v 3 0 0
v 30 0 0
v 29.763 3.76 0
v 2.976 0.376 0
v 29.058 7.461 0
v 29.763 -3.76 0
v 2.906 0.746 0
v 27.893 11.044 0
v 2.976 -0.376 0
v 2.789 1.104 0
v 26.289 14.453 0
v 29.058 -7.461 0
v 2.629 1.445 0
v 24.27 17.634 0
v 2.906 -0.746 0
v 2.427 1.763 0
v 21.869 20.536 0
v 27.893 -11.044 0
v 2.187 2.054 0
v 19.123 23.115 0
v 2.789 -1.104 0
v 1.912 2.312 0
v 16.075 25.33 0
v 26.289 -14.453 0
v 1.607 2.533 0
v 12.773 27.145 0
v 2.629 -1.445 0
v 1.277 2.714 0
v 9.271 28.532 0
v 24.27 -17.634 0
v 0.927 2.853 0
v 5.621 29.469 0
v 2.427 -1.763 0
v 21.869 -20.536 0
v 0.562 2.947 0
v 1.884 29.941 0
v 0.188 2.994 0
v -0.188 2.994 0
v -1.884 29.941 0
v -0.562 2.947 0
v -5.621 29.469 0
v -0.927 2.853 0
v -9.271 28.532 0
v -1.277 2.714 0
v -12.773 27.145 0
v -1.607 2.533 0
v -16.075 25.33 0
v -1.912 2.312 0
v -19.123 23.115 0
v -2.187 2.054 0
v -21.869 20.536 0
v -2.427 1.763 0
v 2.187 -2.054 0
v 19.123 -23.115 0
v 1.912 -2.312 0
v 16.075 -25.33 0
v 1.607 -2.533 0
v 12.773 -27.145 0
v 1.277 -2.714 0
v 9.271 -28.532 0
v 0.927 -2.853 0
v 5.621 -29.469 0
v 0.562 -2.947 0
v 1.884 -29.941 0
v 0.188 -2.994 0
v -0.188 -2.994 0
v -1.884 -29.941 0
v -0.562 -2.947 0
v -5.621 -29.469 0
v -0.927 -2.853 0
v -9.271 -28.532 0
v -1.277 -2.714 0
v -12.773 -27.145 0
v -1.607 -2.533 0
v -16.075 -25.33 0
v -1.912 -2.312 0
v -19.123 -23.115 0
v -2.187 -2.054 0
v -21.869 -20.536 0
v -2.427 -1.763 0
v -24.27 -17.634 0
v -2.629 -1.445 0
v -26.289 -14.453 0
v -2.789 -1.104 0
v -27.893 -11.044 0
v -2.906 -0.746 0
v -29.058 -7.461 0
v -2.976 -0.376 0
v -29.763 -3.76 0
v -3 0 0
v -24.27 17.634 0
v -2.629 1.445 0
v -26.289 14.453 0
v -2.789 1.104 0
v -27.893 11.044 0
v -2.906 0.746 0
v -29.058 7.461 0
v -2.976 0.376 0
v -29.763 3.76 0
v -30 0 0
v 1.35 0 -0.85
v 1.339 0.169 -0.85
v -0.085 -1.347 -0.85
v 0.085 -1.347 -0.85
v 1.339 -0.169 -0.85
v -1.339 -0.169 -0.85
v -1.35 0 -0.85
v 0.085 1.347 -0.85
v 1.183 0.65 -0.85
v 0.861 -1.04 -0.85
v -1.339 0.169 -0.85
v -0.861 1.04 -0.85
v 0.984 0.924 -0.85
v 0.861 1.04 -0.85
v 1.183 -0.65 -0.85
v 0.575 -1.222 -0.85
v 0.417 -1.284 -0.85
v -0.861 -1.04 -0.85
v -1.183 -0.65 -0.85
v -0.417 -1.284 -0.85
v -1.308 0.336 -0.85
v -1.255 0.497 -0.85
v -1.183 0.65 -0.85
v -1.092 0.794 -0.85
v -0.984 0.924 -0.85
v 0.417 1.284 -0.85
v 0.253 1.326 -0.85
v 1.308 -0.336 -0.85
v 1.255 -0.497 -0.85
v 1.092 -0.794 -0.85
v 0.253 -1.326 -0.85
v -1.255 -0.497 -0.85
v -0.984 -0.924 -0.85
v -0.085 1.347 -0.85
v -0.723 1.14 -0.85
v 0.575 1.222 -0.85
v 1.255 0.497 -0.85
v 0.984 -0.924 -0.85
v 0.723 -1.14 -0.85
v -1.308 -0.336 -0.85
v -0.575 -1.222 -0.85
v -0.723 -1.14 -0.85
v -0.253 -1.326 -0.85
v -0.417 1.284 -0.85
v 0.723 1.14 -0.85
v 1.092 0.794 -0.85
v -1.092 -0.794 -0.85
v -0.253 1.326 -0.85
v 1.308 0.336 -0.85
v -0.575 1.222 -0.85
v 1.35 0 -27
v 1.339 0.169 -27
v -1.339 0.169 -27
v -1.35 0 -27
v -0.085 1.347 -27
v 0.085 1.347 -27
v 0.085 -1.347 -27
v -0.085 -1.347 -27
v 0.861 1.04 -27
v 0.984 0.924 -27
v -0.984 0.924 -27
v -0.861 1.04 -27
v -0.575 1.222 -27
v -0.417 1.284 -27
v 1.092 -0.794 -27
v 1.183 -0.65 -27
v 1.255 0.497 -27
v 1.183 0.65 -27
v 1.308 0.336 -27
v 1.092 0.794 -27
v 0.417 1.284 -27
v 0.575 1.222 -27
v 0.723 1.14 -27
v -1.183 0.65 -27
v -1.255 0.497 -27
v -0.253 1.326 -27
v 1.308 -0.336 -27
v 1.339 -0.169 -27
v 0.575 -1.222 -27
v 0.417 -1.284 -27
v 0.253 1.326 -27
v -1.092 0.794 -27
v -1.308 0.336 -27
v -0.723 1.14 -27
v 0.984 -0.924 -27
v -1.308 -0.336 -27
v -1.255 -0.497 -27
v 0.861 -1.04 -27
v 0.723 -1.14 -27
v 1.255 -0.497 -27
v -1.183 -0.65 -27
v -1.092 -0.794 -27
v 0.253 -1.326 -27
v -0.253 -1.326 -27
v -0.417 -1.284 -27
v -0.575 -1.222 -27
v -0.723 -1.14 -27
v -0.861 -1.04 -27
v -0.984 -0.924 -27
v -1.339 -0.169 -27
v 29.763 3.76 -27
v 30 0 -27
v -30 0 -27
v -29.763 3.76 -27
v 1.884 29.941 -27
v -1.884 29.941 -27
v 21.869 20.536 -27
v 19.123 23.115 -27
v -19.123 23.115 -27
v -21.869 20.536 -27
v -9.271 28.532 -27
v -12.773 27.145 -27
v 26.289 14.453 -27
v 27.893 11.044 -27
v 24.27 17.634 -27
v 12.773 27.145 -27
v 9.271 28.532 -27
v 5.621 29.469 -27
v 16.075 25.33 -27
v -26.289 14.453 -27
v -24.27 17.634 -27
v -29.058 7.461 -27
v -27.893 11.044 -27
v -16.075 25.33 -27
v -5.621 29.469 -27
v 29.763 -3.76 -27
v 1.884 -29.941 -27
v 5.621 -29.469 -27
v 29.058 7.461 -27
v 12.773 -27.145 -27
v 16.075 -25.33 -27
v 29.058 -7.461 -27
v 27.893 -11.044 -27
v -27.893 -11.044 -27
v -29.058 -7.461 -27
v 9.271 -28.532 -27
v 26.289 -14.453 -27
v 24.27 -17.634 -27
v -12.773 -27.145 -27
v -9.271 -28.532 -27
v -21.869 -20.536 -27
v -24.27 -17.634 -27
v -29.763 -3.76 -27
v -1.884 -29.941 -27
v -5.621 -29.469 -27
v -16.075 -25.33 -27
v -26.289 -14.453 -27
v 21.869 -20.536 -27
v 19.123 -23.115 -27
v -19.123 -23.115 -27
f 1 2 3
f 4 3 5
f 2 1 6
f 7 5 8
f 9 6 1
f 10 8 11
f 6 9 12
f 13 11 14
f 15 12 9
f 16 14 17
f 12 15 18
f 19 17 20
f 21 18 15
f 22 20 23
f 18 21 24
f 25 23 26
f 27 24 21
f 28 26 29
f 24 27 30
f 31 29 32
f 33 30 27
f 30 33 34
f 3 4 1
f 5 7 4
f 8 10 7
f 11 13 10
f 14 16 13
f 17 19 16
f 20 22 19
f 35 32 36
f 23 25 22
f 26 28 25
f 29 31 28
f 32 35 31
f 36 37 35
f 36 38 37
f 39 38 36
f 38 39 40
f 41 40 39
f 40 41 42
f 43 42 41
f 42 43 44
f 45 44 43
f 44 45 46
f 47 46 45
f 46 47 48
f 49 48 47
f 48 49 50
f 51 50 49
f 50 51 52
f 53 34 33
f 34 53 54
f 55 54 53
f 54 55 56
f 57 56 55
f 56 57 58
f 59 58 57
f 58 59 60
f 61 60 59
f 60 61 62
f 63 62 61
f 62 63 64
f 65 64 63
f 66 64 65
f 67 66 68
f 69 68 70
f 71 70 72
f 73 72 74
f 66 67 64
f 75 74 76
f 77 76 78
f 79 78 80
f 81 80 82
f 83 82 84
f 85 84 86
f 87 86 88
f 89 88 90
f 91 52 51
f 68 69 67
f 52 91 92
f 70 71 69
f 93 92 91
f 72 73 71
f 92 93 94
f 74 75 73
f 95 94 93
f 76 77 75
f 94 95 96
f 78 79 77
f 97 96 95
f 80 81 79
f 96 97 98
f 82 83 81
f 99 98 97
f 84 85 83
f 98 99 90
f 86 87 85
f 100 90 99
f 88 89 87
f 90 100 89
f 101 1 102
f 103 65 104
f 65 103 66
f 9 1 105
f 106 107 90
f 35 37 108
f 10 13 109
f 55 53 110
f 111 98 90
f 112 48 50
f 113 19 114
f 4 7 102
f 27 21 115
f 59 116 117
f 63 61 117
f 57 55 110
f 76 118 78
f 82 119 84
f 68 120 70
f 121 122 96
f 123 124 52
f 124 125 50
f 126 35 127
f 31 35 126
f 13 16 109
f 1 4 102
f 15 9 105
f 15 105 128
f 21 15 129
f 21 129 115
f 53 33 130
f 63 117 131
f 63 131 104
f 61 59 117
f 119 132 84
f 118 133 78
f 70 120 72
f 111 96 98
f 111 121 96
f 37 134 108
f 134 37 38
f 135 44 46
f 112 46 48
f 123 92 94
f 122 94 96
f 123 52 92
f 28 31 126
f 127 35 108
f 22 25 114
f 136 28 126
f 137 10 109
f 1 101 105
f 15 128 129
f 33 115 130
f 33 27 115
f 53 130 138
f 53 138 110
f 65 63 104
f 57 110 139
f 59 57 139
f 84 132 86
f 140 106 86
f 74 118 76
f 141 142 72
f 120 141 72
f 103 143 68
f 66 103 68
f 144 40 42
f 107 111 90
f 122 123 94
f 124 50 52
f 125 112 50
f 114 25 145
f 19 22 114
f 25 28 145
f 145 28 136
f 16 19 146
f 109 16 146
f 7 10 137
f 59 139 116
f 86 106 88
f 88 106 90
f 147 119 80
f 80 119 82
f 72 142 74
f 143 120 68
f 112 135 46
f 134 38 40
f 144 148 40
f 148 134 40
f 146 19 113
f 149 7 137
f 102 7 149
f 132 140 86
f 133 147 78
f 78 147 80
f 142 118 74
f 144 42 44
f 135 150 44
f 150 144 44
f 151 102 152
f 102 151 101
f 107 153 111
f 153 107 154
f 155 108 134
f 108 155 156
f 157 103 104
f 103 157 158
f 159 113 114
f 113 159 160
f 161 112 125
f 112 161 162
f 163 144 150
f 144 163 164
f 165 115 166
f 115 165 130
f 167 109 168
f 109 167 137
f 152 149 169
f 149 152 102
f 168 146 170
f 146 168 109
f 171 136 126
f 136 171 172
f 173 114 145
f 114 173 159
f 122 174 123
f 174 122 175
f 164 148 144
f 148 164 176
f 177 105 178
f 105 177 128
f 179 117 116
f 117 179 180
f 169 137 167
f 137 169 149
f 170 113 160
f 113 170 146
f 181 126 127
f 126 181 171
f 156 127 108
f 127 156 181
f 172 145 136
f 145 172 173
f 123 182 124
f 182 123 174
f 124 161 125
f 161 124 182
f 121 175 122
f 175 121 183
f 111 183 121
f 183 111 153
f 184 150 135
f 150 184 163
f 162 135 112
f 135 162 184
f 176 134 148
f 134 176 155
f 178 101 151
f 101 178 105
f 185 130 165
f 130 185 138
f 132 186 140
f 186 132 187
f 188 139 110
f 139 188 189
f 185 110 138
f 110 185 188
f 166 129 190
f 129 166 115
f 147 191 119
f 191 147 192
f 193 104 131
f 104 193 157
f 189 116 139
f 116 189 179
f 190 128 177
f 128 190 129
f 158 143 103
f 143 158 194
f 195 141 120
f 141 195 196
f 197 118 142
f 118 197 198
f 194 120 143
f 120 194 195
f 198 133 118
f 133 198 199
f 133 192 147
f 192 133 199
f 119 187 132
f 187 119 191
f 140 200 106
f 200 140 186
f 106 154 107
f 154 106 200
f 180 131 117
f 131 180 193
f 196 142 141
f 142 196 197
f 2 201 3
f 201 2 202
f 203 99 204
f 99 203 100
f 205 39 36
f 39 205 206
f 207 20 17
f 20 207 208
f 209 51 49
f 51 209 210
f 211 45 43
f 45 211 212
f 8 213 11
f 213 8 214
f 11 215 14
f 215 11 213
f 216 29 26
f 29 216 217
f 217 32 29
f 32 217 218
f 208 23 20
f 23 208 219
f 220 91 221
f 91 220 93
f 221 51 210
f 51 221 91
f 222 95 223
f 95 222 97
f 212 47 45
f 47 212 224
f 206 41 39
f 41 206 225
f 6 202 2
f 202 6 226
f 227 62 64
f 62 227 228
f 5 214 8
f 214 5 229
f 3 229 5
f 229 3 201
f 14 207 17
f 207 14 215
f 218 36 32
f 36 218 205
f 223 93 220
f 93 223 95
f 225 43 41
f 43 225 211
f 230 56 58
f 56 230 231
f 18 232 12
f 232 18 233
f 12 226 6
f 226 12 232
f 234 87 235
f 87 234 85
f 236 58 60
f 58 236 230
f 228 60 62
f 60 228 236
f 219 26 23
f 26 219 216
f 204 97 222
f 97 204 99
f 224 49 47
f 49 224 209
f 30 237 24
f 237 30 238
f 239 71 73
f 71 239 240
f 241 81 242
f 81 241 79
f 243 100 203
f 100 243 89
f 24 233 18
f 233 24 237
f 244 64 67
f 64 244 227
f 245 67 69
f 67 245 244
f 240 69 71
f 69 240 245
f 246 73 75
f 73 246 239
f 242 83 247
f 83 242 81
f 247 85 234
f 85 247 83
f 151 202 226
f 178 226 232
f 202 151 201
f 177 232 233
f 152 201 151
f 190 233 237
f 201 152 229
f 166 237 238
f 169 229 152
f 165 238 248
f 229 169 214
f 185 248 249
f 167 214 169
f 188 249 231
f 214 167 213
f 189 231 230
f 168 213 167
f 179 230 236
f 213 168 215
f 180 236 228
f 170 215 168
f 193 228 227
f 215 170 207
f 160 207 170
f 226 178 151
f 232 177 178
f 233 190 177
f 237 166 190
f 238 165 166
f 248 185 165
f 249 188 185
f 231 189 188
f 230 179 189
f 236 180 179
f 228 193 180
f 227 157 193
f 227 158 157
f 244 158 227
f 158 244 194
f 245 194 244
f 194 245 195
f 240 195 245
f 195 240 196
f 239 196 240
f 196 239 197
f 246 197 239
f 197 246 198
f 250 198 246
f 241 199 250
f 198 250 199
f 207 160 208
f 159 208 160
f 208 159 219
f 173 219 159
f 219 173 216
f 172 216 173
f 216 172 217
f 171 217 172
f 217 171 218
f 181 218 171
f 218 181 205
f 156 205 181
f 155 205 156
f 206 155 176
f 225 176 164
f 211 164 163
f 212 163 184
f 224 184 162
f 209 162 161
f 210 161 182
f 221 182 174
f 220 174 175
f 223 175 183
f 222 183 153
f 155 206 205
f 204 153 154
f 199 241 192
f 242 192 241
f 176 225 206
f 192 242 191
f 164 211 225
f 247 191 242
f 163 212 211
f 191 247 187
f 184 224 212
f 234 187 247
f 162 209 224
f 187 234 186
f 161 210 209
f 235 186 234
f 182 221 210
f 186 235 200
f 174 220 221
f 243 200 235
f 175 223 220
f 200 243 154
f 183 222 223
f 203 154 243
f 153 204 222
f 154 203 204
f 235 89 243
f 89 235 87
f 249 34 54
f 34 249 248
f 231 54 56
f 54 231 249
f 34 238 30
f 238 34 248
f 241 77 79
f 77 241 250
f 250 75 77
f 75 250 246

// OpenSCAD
$fn = 50;

difference() {
	union() {
		translate(v = [0, 0, -27.0]) {
			cylinder(h = 27, r = 30.0);
		}
	}
	union() {
		translate(v = [0, 0, 0]) {
			rotate(a = [0, 0, 0]) {
				difference() {
					union() {
						translate(v = [0, 0, -30.0]) {
							cylinder(h = 30, r = 1.0);
						}
						translate(v = [0, 0, -0.85]) {
							cylinder(h = 0.85, r1 = 1.35, r2 = 3.0);
						}
						translate(v = [0, 0, -30.0]) {
							cylinder(h = 30, r = 1.35);
						}
						translate(v = [0, 0, -30.0]) {
							cylinder(h = 30, r = 1.0);
						}
					}
					union();
				}
			}
		}
	}
}
